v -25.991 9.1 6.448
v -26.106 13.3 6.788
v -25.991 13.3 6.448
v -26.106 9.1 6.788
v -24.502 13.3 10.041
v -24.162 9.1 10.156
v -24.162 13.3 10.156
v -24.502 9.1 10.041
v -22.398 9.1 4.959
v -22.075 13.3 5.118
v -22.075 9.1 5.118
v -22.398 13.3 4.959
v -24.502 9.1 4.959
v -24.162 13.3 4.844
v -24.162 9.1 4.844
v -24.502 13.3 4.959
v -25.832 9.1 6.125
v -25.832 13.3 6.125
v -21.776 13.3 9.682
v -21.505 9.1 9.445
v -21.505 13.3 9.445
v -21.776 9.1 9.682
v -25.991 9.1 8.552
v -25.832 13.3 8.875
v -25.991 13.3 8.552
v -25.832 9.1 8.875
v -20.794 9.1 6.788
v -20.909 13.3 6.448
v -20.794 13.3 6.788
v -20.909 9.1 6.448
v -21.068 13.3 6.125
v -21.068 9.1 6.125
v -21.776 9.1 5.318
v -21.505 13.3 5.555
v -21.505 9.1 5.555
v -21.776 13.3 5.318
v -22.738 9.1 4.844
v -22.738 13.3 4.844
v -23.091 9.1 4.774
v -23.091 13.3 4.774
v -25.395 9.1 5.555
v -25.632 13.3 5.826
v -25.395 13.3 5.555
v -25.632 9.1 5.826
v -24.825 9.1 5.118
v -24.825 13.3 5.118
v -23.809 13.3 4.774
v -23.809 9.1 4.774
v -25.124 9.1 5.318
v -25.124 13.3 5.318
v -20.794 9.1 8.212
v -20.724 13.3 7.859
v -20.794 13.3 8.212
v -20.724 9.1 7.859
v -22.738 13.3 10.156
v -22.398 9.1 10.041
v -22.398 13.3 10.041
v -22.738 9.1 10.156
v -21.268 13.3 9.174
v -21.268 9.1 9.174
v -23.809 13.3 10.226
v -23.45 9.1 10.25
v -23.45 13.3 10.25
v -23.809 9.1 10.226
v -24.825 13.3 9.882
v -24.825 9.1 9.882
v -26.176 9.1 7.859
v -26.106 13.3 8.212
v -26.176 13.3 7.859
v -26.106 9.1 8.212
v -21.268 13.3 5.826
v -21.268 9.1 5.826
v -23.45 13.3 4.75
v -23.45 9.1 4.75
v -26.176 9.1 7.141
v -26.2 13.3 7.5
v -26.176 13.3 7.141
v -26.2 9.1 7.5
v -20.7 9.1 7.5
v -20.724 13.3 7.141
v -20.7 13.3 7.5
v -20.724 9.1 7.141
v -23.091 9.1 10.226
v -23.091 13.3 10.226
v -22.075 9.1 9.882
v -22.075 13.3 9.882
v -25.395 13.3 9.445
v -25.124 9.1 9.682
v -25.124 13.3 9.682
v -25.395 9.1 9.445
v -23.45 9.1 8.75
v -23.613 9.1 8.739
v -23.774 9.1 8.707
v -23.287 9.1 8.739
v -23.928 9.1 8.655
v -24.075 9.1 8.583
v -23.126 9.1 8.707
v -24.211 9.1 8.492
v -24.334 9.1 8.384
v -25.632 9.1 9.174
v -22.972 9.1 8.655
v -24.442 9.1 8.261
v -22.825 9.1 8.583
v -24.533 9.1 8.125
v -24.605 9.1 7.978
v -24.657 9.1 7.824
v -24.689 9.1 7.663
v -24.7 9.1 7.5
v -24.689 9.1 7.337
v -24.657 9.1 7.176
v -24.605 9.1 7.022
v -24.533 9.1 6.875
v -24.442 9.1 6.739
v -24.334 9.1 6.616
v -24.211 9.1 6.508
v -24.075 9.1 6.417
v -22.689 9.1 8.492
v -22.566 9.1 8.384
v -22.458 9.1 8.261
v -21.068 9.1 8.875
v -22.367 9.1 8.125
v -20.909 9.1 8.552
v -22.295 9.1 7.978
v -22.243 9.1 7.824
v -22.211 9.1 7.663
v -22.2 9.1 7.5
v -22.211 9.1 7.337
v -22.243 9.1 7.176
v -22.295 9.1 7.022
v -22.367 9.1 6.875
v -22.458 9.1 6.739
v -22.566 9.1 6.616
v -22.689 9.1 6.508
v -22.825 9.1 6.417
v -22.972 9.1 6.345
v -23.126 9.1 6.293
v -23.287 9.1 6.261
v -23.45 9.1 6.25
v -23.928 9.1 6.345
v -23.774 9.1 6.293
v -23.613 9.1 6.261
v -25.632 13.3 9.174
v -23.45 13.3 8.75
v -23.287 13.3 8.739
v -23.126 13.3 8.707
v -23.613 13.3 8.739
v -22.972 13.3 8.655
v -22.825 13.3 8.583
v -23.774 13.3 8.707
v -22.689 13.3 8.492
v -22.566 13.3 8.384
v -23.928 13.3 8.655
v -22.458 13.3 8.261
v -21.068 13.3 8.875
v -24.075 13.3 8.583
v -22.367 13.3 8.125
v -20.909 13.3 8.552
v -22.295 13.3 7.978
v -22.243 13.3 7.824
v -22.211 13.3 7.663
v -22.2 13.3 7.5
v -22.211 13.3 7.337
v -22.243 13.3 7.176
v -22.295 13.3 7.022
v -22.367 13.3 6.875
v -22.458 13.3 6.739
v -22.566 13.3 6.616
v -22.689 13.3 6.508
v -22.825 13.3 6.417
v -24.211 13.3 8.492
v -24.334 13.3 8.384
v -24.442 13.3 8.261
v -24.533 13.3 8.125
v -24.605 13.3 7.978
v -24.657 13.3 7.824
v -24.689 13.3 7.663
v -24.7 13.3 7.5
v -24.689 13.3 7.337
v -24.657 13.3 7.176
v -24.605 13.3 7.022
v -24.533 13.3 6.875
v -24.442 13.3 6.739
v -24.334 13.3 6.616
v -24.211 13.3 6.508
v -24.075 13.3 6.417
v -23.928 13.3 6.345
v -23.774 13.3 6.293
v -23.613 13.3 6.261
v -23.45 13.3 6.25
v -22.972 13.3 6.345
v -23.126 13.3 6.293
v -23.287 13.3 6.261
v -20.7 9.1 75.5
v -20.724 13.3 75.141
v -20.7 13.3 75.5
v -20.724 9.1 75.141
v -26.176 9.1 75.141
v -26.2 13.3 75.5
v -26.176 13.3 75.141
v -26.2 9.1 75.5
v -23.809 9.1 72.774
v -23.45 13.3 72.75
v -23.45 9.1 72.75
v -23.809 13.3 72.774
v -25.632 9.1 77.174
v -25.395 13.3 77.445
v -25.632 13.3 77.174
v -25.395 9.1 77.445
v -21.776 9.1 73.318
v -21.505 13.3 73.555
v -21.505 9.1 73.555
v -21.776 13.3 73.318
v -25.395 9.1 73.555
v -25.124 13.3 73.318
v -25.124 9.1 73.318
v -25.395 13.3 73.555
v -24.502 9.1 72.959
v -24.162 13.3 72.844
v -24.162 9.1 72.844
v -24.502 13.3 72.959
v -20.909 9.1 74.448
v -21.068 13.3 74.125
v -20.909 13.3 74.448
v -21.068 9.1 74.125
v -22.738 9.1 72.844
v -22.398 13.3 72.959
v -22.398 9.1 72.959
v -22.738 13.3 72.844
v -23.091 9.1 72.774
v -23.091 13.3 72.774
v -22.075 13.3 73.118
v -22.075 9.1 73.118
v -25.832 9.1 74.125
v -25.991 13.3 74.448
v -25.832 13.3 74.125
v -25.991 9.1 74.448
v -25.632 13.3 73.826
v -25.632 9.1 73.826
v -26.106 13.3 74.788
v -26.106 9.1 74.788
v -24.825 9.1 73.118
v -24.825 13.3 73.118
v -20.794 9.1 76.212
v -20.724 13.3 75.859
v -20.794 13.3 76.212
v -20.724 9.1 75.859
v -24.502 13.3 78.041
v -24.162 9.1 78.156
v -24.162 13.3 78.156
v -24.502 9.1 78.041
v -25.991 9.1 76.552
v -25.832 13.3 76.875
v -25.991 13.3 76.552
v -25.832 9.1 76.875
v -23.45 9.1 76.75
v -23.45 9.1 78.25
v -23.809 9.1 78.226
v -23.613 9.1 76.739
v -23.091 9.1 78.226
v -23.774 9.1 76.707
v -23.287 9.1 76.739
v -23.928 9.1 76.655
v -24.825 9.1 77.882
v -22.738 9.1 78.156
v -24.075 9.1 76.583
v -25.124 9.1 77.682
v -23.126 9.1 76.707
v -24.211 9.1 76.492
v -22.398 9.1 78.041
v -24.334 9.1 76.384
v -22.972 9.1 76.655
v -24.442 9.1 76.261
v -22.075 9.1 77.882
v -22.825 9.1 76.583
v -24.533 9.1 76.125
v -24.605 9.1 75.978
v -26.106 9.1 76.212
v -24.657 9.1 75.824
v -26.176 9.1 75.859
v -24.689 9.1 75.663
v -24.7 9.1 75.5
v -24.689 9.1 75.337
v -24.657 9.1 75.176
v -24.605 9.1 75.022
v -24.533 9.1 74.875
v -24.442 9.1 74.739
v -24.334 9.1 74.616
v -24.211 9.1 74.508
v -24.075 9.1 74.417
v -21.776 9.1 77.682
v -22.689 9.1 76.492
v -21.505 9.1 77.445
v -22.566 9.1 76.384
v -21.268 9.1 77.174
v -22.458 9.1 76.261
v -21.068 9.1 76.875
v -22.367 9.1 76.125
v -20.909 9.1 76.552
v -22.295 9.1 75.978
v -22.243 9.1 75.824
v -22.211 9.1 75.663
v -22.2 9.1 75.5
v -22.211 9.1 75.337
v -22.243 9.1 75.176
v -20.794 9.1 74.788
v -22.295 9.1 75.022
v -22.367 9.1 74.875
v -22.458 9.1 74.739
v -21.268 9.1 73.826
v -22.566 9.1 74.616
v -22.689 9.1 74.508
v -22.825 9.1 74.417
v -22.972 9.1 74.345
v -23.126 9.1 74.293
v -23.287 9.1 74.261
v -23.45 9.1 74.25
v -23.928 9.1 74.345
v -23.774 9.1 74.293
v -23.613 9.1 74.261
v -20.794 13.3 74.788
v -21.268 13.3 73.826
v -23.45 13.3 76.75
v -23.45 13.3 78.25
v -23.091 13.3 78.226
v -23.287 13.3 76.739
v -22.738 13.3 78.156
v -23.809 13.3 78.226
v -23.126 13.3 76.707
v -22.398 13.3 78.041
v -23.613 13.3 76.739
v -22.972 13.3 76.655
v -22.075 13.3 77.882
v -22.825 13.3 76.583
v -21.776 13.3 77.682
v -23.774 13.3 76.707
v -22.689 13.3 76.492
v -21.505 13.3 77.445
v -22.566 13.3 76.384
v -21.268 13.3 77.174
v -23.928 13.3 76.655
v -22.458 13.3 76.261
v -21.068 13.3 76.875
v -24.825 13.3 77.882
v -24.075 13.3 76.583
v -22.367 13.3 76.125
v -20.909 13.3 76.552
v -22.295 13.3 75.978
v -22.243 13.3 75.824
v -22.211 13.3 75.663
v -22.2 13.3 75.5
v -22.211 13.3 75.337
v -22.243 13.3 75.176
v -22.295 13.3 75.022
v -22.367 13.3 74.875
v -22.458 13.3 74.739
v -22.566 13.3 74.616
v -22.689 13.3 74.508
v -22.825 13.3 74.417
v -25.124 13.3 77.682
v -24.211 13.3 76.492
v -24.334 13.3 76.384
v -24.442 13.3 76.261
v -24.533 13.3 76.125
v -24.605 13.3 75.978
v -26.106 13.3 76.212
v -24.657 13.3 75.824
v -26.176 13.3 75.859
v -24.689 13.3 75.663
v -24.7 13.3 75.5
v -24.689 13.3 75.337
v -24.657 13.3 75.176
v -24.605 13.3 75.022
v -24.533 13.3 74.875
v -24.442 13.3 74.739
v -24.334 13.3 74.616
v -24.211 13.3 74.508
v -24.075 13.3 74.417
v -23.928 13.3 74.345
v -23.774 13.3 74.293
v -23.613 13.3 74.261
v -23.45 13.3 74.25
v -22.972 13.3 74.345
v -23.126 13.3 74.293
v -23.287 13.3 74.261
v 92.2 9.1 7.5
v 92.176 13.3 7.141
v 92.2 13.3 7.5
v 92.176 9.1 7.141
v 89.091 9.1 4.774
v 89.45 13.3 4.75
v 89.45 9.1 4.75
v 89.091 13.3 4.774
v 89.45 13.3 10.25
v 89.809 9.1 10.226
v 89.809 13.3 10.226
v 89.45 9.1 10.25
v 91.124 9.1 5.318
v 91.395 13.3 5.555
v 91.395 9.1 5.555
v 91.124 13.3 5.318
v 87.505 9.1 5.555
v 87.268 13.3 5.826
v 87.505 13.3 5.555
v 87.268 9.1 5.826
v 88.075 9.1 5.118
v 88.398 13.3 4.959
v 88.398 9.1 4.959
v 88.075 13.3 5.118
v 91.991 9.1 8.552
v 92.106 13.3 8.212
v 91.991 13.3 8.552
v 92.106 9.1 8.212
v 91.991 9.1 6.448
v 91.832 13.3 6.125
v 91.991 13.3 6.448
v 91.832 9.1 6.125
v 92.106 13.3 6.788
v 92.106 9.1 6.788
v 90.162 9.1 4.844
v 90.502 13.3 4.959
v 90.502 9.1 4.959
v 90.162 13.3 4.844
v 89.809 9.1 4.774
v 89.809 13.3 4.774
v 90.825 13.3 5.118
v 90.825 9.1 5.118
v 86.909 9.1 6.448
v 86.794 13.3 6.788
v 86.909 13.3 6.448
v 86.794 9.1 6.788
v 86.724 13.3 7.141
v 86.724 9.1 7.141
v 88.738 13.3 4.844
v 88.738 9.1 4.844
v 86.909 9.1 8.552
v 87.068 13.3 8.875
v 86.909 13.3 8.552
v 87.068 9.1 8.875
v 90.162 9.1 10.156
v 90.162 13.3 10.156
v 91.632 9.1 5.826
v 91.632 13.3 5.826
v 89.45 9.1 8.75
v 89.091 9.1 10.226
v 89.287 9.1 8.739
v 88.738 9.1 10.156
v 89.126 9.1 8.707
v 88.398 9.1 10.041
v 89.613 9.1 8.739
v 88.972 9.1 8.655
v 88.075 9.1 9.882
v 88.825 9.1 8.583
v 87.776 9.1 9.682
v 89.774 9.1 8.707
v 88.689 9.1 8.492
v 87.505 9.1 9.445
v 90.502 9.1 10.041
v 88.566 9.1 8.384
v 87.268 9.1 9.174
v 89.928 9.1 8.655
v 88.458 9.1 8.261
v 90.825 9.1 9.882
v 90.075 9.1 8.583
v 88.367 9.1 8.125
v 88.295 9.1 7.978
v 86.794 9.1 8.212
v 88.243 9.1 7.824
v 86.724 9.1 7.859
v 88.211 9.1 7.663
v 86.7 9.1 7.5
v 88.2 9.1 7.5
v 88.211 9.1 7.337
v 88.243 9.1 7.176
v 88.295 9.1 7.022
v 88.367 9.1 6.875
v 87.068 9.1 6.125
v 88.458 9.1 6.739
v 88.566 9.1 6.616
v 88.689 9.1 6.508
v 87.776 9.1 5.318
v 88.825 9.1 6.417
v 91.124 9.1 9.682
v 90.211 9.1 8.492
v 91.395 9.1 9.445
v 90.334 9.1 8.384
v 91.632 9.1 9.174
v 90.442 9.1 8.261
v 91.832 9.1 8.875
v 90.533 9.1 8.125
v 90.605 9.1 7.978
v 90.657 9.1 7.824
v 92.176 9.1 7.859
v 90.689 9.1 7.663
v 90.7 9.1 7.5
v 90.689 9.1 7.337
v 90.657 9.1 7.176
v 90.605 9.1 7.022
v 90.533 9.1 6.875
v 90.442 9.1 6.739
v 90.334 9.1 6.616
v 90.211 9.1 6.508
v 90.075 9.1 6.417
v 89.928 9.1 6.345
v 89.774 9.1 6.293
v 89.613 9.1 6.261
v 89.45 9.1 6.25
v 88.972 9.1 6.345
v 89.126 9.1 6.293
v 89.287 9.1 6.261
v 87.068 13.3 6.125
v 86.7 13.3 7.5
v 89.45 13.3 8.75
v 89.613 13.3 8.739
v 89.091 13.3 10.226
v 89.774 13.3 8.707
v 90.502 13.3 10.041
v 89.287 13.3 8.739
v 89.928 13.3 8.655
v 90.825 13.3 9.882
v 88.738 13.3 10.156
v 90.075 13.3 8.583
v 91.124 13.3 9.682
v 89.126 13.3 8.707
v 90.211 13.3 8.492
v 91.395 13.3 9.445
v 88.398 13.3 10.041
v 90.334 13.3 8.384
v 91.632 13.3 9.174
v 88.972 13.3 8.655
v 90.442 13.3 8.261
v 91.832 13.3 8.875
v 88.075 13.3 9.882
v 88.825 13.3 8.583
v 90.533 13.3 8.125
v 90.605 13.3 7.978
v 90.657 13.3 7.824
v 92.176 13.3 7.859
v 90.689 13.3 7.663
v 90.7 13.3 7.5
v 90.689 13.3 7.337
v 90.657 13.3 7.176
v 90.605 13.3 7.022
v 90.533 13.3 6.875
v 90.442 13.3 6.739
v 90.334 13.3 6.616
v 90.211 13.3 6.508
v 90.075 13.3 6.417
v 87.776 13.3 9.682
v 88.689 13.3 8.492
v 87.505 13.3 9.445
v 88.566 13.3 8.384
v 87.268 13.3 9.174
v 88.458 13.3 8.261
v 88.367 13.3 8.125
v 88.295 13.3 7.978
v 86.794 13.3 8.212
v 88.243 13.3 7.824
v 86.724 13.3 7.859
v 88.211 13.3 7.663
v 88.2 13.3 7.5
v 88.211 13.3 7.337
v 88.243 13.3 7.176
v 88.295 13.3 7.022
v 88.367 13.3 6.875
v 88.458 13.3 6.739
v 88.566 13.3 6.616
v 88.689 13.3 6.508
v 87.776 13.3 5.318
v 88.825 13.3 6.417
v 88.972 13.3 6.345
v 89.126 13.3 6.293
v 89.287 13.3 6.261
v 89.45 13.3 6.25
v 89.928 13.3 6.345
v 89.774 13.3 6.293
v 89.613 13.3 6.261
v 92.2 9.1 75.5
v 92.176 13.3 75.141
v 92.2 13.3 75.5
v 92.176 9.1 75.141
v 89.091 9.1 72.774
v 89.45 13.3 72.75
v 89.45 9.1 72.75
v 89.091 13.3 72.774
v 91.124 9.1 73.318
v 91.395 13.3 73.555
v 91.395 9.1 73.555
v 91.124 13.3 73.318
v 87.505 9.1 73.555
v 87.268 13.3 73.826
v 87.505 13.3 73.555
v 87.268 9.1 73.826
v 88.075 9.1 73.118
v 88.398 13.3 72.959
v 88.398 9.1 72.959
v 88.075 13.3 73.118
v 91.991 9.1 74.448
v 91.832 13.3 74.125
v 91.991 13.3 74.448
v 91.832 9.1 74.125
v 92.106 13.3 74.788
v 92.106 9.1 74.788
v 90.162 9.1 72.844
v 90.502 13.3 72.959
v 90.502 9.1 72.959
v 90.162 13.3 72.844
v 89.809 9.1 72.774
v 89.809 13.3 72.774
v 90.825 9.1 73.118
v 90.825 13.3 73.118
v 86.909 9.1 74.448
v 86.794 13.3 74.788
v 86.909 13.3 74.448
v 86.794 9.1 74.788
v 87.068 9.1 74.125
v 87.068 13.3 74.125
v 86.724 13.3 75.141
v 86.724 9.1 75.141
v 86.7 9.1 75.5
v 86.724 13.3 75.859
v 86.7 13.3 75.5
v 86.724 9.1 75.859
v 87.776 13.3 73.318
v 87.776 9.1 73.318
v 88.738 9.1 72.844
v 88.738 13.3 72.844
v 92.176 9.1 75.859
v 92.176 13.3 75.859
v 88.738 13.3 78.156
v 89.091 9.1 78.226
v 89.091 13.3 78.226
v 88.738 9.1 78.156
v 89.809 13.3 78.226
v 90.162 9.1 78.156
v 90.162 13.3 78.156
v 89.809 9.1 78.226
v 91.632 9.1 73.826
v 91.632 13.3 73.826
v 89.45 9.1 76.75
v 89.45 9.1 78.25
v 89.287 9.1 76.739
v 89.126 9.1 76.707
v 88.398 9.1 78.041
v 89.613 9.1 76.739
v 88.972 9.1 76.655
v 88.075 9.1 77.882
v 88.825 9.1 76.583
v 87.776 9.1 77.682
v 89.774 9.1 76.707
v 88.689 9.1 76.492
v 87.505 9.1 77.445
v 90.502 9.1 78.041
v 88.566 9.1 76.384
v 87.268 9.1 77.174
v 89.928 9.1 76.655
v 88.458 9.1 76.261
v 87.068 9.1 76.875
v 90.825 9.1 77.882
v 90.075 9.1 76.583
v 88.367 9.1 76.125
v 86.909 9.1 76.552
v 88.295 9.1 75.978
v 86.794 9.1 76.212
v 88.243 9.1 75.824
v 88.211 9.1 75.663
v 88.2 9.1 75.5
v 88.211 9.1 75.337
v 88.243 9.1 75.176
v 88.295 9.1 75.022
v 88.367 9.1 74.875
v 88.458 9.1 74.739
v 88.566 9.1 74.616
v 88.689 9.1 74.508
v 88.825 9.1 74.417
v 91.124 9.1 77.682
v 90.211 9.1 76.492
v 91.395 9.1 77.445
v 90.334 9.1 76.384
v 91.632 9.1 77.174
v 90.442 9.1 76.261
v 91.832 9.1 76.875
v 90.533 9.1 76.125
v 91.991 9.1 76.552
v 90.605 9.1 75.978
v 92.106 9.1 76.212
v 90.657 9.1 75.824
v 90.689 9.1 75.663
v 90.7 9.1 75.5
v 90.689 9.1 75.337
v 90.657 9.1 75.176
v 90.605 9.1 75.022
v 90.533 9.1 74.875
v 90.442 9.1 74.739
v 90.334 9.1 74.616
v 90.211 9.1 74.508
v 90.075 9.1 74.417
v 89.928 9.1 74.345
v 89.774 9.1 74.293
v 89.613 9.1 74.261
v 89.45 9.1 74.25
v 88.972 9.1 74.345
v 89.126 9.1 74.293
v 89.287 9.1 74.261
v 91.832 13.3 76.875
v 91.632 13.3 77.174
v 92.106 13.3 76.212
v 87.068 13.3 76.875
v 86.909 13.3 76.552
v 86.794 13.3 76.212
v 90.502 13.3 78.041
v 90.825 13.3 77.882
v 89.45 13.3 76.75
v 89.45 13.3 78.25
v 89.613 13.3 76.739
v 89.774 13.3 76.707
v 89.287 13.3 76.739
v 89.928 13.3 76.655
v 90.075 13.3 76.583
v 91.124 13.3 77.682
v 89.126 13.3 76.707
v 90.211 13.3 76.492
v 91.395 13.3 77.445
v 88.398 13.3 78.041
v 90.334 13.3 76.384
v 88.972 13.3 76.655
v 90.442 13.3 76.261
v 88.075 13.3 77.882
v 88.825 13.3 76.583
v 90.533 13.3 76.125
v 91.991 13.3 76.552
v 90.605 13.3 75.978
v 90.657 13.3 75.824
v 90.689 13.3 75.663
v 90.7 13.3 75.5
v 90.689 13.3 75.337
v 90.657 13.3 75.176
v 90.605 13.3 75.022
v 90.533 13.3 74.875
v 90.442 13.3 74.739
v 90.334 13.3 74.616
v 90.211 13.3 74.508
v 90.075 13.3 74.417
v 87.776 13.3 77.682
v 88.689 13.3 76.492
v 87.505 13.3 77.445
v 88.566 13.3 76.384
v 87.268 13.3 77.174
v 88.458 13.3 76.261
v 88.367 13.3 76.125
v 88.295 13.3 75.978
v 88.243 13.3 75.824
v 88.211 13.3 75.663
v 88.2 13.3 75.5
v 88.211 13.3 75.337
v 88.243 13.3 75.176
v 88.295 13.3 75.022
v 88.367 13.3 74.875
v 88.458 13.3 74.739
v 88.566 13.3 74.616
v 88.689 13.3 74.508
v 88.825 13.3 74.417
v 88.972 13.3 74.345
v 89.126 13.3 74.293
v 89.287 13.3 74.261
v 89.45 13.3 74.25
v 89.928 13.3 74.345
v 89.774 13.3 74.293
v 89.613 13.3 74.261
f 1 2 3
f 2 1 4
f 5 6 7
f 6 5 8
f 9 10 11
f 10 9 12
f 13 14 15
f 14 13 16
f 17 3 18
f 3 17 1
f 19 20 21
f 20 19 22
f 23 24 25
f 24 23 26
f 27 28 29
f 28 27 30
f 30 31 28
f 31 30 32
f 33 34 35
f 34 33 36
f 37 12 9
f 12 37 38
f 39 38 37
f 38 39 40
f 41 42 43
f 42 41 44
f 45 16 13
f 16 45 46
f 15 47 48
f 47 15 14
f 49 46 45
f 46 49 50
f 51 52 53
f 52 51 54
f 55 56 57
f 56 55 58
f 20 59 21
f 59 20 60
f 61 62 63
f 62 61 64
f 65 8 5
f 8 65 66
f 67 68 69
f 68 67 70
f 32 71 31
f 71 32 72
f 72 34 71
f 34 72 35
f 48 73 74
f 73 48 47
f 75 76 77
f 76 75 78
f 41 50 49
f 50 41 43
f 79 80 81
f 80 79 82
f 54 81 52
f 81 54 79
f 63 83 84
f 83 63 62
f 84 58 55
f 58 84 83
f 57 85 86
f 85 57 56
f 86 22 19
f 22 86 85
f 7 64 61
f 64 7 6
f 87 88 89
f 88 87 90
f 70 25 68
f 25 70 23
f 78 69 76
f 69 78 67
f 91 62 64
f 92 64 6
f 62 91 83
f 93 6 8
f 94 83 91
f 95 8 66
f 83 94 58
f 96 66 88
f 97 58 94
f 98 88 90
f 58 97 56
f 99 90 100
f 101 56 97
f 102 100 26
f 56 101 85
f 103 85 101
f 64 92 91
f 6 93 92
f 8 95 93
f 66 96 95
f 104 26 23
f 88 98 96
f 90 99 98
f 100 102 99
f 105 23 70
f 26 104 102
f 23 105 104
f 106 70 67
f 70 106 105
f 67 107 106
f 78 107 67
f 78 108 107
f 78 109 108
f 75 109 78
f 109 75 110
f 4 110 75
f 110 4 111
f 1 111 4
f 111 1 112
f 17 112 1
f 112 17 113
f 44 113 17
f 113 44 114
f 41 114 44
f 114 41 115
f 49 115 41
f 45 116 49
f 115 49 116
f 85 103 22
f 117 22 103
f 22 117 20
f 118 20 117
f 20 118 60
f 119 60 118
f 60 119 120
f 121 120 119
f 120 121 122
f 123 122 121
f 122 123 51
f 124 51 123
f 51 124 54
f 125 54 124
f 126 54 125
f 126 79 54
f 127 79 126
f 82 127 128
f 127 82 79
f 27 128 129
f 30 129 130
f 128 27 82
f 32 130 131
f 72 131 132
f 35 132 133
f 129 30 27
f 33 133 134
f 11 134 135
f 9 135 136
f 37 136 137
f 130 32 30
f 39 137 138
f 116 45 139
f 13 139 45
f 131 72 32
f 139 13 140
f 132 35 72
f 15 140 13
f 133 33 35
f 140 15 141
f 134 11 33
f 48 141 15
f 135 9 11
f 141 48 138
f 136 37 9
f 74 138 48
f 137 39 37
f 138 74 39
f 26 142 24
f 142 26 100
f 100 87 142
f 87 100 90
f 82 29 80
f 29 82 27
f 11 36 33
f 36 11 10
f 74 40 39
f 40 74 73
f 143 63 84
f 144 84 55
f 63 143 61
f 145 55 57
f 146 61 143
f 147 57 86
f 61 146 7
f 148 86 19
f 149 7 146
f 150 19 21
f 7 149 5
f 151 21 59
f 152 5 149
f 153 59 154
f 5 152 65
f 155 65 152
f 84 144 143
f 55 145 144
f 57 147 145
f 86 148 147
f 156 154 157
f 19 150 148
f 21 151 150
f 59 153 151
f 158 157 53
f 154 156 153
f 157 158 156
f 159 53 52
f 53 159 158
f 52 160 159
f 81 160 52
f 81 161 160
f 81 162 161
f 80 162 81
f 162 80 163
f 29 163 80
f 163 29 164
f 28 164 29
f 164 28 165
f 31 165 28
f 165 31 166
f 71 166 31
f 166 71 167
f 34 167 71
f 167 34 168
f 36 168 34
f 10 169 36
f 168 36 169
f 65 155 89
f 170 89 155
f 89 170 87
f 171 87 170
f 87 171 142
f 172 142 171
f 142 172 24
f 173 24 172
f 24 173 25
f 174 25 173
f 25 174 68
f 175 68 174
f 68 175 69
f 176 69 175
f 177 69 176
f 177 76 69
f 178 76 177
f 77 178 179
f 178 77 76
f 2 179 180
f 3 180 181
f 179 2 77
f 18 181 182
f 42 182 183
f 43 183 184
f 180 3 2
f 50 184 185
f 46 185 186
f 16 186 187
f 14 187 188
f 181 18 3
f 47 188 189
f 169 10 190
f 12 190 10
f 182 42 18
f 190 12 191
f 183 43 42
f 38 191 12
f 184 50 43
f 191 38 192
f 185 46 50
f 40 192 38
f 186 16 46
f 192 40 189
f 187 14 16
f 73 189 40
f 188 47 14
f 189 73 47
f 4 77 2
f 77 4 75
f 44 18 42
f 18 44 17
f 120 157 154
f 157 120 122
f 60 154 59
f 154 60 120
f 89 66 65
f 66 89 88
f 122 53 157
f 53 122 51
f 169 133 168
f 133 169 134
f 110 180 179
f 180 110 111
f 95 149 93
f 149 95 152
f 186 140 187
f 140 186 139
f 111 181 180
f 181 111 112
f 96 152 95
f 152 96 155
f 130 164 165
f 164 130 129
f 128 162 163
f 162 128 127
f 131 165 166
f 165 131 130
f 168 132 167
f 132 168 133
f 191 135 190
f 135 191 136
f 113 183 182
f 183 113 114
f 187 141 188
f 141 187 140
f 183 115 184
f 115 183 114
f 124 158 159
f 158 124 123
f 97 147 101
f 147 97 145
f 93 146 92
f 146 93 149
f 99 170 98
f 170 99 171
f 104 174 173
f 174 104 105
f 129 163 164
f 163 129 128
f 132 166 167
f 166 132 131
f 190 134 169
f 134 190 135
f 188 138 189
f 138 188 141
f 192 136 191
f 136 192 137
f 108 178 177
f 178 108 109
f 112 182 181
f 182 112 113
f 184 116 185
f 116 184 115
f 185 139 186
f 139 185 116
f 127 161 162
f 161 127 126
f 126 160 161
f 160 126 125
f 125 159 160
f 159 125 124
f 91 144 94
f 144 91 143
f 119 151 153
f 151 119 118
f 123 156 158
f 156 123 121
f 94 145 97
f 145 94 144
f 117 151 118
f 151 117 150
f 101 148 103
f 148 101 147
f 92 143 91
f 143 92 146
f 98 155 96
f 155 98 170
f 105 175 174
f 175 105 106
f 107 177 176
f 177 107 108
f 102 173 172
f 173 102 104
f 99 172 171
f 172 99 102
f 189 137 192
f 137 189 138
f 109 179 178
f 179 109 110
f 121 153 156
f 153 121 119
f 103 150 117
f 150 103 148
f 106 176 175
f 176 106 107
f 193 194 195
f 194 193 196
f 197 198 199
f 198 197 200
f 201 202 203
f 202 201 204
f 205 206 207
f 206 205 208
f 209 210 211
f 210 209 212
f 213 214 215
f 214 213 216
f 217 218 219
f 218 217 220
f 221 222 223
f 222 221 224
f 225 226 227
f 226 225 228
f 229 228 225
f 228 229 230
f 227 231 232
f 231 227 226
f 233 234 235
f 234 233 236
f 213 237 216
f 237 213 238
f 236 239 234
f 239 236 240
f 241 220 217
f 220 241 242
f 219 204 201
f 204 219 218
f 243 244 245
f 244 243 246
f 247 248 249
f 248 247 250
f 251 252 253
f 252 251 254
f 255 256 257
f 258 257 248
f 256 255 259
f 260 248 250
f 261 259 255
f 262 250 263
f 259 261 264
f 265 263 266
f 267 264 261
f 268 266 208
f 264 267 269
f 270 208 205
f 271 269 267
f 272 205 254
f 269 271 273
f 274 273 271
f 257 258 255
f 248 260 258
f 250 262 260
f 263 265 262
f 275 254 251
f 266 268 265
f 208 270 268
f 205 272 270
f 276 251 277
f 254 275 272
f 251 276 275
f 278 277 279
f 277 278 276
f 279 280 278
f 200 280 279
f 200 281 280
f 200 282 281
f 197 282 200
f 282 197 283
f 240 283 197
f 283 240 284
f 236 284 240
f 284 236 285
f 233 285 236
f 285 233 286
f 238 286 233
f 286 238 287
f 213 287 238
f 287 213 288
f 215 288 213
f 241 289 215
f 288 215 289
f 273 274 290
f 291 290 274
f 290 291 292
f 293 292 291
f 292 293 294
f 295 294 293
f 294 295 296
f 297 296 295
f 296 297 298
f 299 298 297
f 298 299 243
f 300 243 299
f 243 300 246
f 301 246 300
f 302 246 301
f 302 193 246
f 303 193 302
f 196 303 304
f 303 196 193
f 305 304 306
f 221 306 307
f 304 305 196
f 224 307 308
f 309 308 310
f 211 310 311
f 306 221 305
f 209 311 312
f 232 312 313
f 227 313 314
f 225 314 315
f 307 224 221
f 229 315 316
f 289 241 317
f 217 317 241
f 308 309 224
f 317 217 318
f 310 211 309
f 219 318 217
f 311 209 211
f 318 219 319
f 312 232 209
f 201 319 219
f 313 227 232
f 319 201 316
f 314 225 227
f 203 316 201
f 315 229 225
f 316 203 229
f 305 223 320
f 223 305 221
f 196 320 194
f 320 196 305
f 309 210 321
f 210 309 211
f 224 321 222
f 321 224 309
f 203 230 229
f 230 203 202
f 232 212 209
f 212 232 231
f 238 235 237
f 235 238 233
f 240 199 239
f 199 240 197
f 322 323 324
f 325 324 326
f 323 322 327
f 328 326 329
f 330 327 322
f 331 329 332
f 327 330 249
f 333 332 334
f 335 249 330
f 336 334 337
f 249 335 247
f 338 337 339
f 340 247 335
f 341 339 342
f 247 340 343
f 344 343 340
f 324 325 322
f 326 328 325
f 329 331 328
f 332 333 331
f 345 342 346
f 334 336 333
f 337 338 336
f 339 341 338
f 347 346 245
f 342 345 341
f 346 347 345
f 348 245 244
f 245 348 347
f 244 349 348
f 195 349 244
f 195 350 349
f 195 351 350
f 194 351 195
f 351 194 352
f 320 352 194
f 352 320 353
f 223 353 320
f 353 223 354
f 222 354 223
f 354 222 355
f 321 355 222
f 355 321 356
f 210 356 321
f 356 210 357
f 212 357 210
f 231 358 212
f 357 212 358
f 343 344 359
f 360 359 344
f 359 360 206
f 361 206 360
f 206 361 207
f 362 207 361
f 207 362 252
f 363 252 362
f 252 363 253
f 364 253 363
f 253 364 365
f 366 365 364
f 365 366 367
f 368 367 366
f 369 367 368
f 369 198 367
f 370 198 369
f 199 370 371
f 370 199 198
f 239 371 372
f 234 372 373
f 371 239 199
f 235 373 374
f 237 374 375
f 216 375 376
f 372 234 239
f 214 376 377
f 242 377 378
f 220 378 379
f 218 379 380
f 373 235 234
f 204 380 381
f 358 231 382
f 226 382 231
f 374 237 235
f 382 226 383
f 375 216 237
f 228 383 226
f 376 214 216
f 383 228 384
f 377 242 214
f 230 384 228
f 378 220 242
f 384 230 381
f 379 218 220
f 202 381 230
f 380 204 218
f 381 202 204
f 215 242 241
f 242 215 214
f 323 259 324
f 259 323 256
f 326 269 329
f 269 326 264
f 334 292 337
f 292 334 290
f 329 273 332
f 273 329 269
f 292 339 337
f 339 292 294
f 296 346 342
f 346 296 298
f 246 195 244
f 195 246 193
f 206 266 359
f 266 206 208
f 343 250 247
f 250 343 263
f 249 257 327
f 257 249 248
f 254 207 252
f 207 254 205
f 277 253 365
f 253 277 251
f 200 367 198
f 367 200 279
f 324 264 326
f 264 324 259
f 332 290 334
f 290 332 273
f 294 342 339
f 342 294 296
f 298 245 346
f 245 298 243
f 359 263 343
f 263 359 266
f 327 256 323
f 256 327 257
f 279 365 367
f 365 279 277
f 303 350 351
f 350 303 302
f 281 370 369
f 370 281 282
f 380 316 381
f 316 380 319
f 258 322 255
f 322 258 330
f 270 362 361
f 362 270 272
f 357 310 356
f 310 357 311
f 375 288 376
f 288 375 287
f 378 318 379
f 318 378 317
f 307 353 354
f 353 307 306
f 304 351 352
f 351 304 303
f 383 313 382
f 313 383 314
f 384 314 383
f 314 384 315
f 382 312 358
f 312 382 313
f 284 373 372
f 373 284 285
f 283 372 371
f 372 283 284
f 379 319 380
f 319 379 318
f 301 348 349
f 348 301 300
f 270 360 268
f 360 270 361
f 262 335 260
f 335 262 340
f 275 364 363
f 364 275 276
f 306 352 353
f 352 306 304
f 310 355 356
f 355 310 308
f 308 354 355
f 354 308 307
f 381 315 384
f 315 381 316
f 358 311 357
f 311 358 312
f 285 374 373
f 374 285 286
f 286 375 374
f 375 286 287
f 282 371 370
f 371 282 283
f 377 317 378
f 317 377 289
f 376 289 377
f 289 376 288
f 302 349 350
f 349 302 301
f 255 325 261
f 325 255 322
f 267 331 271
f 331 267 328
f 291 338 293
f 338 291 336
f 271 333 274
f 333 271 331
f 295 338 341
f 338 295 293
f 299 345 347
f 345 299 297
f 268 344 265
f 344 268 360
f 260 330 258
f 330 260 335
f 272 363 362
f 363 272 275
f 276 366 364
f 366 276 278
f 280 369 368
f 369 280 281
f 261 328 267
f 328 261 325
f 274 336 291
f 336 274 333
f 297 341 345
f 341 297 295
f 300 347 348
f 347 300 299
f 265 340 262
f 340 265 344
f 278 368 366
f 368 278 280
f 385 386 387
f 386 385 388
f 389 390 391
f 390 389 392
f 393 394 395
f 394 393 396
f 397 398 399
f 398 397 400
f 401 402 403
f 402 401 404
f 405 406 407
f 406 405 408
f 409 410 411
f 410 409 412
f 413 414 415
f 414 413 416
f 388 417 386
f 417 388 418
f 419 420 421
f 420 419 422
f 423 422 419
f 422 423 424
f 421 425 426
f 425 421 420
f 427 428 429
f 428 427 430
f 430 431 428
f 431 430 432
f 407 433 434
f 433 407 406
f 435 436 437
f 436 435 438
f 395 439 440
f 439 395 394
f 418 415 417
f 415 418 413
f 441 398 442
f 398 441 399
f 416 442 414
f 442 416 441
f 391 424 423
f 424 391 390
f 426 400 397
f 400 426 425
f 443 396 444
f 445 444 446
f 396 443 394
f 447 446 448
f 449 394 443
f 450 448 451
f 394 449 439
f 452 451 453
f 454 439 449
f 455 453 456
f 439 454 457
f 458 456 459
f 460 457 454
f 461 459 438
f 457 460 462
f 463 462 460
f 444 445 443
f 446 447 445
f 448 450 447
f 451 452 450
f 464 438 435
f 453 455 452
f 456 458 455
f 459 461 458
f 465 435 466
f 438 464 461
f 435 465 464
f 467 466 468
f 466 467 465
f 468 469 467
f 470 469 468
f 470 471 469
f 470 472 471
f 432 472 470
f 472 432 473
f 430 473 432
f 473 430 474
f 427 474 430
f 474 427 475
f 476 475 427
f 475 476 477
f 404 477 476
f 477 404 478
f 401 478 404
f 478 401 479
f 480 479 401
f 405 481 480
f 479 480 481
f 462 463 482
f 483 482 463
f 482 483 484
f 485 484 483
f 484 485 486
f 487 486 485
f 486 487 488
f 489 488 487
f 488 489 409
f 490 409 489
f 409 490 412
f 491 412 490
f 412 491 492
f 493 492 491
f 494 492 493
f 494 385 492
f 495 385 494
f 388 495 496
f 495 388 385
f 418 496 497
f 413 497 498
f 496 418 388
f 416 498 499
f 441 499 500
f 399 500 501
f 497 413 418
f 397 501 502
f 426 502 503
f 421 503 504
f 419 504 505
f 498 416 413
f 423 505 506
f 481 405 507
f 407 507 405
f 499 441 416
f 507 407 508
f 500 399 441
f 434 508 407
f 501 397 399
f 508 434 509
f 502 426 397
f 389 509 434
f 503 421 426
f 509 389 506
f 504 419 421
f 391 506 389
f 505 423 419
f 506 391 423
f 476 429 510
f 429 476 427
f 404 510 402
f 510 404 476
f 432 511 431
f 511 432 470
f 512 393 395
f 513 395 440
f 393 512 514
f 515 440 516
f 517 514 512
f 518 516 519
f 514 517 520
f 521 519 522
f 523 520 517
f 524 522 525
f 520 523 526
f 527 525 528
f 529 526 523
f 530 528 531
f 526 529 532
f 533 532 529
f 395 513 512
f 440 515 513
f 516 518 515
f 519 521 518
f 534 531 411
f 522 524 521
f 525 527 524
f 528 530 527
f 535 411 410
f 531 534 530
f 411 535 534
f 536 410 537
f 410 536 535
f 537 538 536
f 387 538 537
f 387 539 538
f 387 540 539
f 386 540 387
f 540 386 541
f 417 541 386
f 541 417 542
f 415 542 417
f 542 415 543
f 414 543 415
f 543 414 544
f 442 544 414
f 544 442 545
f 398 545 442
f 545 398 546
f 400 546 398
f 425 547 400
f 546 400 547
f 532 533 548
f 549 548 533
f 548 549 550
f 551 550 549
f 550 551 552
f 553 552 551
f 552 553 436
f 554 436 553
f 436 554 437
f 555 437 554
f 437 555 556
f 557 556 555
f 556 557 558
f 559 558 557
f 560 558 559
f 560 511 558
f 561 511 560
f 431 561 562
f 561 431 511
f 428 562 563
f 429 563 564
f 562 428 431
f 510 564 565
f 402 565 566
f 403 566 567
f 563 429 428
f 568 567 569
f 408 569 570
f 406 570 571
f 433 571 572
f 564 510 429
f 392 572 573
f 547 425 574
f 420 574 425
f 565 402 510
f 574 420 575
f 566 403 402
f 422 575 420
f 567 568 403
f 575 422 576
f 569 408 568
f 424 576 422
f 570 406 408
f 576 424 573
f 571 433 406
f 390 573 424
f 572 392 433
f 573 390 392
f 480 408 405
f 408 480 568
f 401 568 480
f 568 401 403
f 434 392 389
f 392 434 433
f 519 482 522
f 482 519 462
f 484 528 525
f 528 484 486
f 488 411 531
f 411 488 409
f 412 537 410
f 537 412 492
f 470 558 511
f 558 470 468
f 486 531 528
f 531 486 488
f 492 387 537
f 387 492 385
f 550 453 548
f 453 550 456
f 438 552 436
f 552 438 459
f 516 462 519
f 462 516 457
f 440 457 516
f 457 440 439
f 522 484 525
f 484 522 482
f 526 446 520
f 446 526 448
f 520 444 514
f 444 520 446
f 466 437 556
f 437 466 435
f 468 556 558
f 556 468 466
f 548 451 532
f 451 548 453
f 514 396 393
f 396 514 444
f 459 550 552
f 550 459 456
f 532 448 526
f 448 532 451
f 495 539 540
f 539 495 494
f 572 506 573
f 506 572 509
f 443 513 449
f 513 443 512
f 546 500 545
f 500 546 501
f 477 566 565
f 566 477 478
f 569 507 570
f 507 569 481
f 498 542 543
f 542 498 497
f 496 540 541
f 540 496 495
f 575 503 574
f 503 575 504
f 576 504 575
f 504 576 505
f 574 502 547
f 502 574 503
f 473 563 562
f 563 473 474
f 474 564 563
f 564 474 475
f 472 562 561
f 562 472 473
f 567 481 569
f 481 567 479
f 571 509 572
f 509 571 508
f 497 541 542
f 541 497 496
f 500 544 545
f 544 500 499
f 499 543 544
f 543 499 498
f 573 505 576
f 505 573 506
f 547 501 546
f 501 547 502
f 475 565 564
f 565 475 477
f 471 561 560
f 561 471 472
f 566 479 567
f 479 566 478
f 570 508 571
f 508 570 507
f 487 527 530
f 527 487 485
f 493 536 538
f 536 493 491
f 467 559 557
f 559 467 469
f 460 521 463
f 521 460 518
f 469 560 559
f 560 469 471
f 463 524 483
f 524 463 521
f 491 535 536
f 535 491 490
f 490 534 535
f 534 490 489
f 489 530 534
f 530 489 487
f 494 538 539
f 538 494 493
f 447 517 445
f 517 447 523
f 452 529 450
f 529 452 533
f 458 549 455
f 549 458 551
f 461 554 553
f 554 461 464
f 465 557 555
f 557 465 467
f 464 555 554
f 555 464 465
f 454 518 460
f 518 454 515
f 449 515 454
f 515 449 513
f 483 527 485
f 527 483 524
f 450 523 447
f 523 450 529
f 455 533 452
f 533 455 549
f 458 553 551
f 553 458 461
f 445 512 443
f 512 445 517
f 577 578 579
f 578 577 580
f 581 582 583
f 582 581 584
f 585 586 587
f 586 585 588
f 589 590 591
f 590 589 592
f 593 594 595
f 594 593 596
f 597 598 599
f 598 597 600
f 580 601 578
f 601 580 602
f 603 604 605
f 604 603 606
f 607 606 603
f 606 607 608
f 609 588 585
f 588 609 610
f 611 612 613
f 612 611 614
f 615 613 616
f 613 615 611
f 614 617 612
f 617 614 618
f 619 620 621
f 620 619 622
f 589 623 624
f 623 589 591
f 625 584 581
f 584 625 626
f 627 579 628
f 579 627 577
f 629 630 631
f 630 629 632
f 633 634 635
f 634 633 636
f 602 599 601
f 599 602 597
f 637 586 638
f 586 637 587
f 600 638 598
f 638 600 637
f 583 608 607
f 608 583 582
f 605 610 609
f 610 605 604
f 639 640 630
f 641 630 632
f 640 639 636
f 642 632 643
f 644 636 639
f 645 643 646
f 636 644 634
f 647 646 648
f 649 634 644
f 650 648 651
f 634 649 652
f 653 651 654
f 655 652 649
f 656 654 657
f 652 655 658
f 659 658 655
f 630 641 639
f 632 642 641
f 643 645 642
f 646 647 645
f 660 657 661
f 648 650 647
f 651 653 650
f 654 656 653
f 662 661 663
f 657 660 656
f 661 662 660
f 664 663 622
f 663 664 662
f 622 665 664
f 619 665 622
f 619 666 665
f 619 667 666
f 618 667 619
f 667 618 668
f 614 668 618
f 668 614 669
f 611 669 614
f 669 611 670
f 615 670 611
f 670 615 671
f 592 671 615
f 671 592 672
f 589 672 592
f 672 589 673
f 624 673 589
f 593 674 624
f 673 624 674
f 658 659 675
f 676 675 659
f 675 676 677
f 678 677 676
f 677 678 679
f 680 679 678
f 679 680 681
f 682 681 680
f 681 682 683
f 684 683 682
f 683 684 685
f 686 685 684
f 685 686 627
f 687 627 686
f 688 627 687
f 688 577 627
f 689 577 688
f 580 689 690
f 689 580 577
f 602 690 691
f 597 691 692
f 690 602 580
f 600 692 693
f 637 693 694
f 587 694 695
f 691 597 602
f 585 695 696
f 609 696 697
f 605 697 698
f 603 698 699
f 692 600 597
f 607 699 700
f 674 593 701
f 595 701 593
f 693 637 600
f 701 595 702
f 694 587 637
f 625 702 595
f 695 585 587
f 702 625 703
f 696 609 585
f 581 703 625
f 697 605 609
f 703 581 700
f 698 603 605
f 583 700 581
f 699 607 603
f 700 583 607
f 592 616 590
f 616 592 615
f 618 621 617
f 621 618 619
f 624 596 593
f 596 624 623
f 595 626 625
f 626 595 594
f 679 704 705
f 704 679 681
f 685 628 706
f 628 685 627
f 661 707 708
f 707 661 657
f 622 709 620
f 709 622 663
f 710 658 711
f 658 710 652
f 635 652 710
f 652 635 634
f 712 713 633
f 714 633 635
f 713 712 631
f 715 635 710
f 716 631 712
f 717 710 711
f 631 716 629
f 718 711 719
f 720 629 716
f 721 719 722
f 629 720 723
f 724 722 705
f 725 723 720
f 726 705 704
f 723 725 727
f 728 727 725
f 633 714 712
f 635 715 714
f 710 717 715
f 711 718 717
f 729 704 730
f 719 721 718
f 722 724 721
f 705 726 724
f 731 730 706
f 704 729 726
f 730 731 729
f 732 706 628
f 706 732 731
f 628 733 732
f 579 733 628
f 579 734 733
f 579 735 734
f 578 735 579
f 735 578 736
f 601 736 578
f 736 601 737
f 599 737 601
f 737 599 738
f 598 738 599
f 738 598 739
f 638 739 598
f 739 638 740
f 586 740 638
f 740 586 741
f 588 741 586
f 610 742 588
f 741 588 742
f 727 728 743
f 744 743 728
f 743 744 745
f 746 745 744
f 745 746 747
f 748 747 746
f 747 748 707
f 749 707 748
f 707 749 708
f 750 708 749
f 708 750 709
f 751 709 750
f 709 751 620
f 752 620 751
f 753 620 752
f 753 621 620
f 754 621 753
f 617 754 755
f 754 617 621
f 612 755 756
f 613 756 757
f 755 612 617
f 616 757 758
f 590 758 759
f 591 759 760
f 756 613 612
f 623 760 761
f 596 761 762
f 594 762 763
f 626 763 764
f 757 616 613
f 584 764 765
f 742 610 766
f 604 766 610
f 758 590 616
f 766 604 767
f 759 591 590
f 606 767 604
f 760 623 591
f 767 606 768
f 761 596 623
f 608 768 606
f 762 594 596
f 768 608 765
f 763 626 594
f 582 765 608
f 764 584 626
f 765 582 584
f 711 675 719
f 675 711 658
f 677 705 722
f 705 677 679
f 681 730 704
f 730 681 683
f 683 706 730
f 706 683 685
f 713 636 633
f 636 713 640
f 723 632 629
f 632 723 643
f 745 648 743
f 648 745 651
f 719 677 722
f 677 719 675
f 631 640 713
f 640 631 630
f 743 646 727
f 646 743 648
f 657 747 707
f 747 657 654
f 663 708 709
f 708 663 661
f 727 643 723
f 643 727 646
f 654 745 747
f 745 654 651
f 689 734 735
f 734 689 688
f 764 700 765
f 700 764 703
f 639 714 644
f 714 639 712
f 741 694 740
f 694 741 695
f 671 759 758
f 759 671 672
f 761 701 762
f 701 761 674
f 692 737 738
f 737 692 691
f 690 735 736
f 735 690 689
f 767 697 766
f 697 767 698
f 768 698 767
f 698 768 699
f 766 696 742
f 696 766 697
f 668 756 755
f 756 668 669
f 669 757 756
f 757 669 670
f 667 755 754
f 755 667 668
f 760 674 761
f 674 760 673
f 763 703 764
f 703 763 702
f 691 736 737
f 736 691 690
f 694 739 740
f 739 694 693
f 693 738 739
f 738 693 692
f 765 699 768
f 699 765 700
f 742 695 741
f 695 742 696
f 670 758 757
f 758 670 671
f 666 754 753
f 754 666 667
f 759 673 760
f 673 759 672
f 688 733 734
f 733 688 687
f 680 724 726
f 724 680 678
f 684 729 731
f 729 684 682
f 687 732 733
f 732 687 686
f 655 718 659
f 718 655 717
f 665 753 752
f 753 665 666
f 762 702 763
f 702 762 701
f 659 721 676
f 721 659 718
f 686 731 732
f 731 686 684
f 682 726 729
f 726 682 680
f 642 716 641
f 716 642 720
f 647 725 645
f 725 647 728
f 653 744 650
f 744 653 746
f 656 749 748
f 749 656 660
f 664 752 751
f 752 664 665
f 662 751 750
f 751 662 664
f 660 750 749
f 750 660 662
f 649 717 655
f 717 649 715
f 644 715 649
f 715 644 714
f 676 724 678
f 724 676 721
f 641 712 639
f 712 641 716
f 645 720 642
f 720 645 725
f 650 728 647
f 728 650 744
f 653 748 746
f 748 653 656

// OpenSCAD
// file: D:/Projects/assembly-workshop/outputs/Screen_5in_SCR5-G_2026-10-30/checks/geometry.scad
// SCR5-G; mm; FRONT view: X right, Z up, Y into rack. Glass/plate front Y=0.
// Measured values: work/screen-5in/Dimensions.md. Physical fit/strength UNKNOWN.
part="plate";
DROP=0.45; // coupon winner can be substituted here; all three pins use this DROP
LIP=0.8; LIP_ON=true;
LIP_EDGES=[true,true,false,false]; // left,right,bottom,top; Brian: side lips only, cosmetic
FRAME_STEP=1.5; // measured glass-edge inset to metal LCD frame, left/right only
SHIM=0; // moves rear frame seat and plate-boss mating face back
$fn=48;
GCX=33; GCZ=41.5; PW=252; PH=88.8; PT=4;
GW=120.7; GH=77.2; CLEAR=0.2; WW=GW+2*CLEAR; WH=GH+2*CLEAR;
SEAT=13.3+SHIM; FT=3;
SO=[56.45,34]; BTN_X=[45.5,35.5,25.5];
PCB_TOP=38; GAP=0.10; LEAF_T=0.8;
HOLE=[3.4,40.3,44.7];
BX=[GCX-68,GCX+68]; BZ=[10,72];
// DSI connector X extent is unmeasured: conservative assumed 8 mm inward from PCB edge.
DSI=[GCX-60.5,9.1,GCZ-38+30,8,5.25,21];
module xz(y,d){translate([0,y+d,0])rotate([90,0,0])linear_extrude(d)children();}
// rr/rack_slots copied from SCR5-F; same exact slot centres, outline shifted -0.05 Z to centre 44.4.
module rr(w,h,r){hull()for(x=[-w/2+r,w/2-r],z=[-h/2+r,h/2-r])translate([x,z])circle(r=r);}
module rack_slots(){for(x=[-118.2625,118.2625],z=[6.323,38.127,50.773,82.577])translate([x,z])hull()for(dx=[-1.5,1.5])translate([dx,0])circle(d=7);}
module cyl_y(x,y,z,d,h){translate([x,y,z])rotate([-90,0,0])cylinder(d=d,h=h);}
module window_cut(){
  xz(-0.02,4.04)translate([GCX,GCZ])square([WW,WH],center=true);
  // 0.3 x 45-degree chamfer, square corners, front only.
  translate([GCX,0.3,GCZ])rotate([90,0,0])
    linear_extrude(height=0.3,scale=[(WW+0.6)/WW,(WH+0.6)/WH])square([WW,WH],center=true);
}
module lips(){
  // Cosmetic side ledges only; rear frame/standoffs set depth and retain the screen.
  if(LIP_ON)for(i=[0:3])if(LIP_EDGES[i]){
    if(i<2)translate([GCX+(i==0?-WW/2:WW/2-LIP),2.5,GCZ-GH/2+4])cube([LIP,0.8,GH-8]);
    else translate([GCX-GW/2+4,2.5,GCZ+(i==2?-WH/2:WH/2-LIP)])cube([GW-8,0.8,LIP]);
  }
}
// Leaf/nub/bump geometry copied from SCR5-WP-A, translated to this glass centre.
module leaves(){for(x=BTN_X)translate([GCX+x-1.5,0,GCZ]){
  translate([0,0,PCB_TOP+GAP+0.9+0.1])cube([3,11.8,LEAF_T]);
  translate([0,10.2,PCB_TOP+GAP])cube([3,1.4,1.0+LEAF_T/2]);
  translate([0,10.4,PCB_TOP+GAP+1.0+LEAF_T])cube([3,1.0,0.9]);
}}
module plate(){difference(){union(){
  difference(){xz(0,PT)translate([0,PH/2])rr(PW,PH,2.5);window_cut();}
  for(x=BX,z=BZ)cyl_y(x,3.9,z,8,SEAT-3.9);
  leaves(); lips();
 }
 xz(-0.02,4.04)rack_slots();
 for(x=BTN_X)translate([GCX+x-HOLE[0]/2,-0.02,GCZ+HOLE[1]])cube([HOLE[0],SEAT+FT+0.04,HOLE[2]-HOLE[1]]);
 // Printed-in screw pilots (no heat-set OD assumption): nominal M2.5, fit UNKNOWN.
 for(x=BX,z=BZ)cyl_y(x,SEAT-6,z,2.1,6.02);
 // Rear engraving, 0.5 deep, left field.
 xz(3.5,0.52)translate([-75,40])mirror([1,0])text("SCR5-G",size=6,halign="center",font="Liberation Sans:style=Bold");
}}
module frame_blank(){
  // C-shaped perimeter; no material across the board centre / touch FPC.
  xz(SEAT,FT)translate([GCX,GCZ])difference(){square([132,76],center=true);square([116,60],center=true);}
  for(sx=[-1,1],sz=[-1,1])cyl_y(GCX+sx*SO[0],SEAT,GCZ+sz*SO[1],9,FT);
  for(x=BX,z=BZ)hull(){cyl_y(x,SEAT,z,8,FT);cyl_y(GCX+(x<GCX?-62:62),SEAT,z,8,FT);}
}
module dsi_keepout(){translate([DSI[0]-3,DSI[1]-3,DSI[2]-3])cube([DSI[3]+6,DSI[4]+6,DSI[5]+6]);}
module ribbon_route(){
  // Open left/up corridor 18 mm wide; extends past top of plate.
  translate([GCX-84,6.1,GCZ-11])cube([18,24,65]);
  translate([GCX-84,6.1,GCZ-11])cube([32,24,27]);
}
module frame(){difference(){frame_blank();dsi_keepout();ribbon_route();
 for(sx=[-1,1],sz=[-1,1])cyl_y(GCX+sx*SO[0],SEAT-0.02,GCZ+sz*SO[1],2.8,FT+0.04);
 for(x=BX,z=BZ)cyl_y(x,SEAT-0.02,z,2.8,FT+0.04);
}}
// Pin polygon/cap/notch/dot design copied unchanged from SCR5-WP-A.
module pin(d,dots){s=2*d+0.5;difference(){union(){
 translate([-1.5,0,0])rotate([90,0,90])linear_extrude(3)polygon([
 [-s-0.02,40.5],[10.2,40.5],[10.2,41.0],[11.5,41.0],[11.5+2*d,41.0-d],[15,41.0-d],[15,44.5],[-s-0.02,44.5]]);
 translate([-2.5,-s-1.5,39.6])cube([5,1.5,5.8]);
 }for(i=[0:dots-1])translate([(i-(dots-1)/2)*1.4,-s-1.5-0.01,43.5])rotate([-90,0,0])cylinder(d=0.9,h=0.4);}}
module placed_pin(i){translate([GCX+BTN_X[i],0,GCZ])pin(DROP,i+1);}
// Measured layers: cover glass 0.9 + second glass 1.6, metal frame 3.0,
// open gap 2.0, PCB 1.6. Metal frame inset ~1.5 at LEFT/RIGHT only.
// PCB centred under glass and full metal-frame top/bottom extent remain UNKNOWN.
module glass(){translate([GCX-GW/2,0,GCZ-GH/2])cube([GW,2.5,GH]);}
module lcd(){
  translate([GCX-GW/2+FRAME_STEP,2.5,GCZ-GH/2])cube([GW-2*FRAME_STEP,3.0,GH]);
}
module pcb(){translate([GCX-60.5,7.5,GCZ-38])cube([121,1.6,76]);}
module standoffs(){for(sx=[-1,1],sz=[-1,1])difference(){cyl_y(GCX+sx*SO[0],9.1,GCZ+sz*SO[1],5.5,4.2);cyl_y(GCX+sx*SO[0],9.08,GCZ+sz*SO[1],2.5,4.24);}}
module buttons(){for(x=BTN_X){
 translate([GCX+x-3.5,9.1,GCZ+38-3.4])cube([7,3.6,2.4]);
 translate([GCX+x-1.5,9.1,GCZ+37])cube([3,3.6,1]);
}}
module dsi(){translate([DSI[0],DSI[1],DSI[2]])cube([DSI[3],DSI[4],DSI[5]]);}
module touch(){translate([GCX-10,9.1,GCZ-5])cube([20,2,10]);} // lateral extent unmeasured
module dummy(){glass();lcd();pcb();standoffs();buttons();dsi();touch();}
module assembly(){color("gray")plate();color("orange")frame();for(i=[0:2])color("cyan")placed_pin(i);color([0.2,0.3,0.4,0.4])dummy();}
// main file
include <D:/Projects/assembly-workshop/outputs/Screen_5in_SCR5-G_2026-10-30/checks/geometry.scad>
standoffs();
